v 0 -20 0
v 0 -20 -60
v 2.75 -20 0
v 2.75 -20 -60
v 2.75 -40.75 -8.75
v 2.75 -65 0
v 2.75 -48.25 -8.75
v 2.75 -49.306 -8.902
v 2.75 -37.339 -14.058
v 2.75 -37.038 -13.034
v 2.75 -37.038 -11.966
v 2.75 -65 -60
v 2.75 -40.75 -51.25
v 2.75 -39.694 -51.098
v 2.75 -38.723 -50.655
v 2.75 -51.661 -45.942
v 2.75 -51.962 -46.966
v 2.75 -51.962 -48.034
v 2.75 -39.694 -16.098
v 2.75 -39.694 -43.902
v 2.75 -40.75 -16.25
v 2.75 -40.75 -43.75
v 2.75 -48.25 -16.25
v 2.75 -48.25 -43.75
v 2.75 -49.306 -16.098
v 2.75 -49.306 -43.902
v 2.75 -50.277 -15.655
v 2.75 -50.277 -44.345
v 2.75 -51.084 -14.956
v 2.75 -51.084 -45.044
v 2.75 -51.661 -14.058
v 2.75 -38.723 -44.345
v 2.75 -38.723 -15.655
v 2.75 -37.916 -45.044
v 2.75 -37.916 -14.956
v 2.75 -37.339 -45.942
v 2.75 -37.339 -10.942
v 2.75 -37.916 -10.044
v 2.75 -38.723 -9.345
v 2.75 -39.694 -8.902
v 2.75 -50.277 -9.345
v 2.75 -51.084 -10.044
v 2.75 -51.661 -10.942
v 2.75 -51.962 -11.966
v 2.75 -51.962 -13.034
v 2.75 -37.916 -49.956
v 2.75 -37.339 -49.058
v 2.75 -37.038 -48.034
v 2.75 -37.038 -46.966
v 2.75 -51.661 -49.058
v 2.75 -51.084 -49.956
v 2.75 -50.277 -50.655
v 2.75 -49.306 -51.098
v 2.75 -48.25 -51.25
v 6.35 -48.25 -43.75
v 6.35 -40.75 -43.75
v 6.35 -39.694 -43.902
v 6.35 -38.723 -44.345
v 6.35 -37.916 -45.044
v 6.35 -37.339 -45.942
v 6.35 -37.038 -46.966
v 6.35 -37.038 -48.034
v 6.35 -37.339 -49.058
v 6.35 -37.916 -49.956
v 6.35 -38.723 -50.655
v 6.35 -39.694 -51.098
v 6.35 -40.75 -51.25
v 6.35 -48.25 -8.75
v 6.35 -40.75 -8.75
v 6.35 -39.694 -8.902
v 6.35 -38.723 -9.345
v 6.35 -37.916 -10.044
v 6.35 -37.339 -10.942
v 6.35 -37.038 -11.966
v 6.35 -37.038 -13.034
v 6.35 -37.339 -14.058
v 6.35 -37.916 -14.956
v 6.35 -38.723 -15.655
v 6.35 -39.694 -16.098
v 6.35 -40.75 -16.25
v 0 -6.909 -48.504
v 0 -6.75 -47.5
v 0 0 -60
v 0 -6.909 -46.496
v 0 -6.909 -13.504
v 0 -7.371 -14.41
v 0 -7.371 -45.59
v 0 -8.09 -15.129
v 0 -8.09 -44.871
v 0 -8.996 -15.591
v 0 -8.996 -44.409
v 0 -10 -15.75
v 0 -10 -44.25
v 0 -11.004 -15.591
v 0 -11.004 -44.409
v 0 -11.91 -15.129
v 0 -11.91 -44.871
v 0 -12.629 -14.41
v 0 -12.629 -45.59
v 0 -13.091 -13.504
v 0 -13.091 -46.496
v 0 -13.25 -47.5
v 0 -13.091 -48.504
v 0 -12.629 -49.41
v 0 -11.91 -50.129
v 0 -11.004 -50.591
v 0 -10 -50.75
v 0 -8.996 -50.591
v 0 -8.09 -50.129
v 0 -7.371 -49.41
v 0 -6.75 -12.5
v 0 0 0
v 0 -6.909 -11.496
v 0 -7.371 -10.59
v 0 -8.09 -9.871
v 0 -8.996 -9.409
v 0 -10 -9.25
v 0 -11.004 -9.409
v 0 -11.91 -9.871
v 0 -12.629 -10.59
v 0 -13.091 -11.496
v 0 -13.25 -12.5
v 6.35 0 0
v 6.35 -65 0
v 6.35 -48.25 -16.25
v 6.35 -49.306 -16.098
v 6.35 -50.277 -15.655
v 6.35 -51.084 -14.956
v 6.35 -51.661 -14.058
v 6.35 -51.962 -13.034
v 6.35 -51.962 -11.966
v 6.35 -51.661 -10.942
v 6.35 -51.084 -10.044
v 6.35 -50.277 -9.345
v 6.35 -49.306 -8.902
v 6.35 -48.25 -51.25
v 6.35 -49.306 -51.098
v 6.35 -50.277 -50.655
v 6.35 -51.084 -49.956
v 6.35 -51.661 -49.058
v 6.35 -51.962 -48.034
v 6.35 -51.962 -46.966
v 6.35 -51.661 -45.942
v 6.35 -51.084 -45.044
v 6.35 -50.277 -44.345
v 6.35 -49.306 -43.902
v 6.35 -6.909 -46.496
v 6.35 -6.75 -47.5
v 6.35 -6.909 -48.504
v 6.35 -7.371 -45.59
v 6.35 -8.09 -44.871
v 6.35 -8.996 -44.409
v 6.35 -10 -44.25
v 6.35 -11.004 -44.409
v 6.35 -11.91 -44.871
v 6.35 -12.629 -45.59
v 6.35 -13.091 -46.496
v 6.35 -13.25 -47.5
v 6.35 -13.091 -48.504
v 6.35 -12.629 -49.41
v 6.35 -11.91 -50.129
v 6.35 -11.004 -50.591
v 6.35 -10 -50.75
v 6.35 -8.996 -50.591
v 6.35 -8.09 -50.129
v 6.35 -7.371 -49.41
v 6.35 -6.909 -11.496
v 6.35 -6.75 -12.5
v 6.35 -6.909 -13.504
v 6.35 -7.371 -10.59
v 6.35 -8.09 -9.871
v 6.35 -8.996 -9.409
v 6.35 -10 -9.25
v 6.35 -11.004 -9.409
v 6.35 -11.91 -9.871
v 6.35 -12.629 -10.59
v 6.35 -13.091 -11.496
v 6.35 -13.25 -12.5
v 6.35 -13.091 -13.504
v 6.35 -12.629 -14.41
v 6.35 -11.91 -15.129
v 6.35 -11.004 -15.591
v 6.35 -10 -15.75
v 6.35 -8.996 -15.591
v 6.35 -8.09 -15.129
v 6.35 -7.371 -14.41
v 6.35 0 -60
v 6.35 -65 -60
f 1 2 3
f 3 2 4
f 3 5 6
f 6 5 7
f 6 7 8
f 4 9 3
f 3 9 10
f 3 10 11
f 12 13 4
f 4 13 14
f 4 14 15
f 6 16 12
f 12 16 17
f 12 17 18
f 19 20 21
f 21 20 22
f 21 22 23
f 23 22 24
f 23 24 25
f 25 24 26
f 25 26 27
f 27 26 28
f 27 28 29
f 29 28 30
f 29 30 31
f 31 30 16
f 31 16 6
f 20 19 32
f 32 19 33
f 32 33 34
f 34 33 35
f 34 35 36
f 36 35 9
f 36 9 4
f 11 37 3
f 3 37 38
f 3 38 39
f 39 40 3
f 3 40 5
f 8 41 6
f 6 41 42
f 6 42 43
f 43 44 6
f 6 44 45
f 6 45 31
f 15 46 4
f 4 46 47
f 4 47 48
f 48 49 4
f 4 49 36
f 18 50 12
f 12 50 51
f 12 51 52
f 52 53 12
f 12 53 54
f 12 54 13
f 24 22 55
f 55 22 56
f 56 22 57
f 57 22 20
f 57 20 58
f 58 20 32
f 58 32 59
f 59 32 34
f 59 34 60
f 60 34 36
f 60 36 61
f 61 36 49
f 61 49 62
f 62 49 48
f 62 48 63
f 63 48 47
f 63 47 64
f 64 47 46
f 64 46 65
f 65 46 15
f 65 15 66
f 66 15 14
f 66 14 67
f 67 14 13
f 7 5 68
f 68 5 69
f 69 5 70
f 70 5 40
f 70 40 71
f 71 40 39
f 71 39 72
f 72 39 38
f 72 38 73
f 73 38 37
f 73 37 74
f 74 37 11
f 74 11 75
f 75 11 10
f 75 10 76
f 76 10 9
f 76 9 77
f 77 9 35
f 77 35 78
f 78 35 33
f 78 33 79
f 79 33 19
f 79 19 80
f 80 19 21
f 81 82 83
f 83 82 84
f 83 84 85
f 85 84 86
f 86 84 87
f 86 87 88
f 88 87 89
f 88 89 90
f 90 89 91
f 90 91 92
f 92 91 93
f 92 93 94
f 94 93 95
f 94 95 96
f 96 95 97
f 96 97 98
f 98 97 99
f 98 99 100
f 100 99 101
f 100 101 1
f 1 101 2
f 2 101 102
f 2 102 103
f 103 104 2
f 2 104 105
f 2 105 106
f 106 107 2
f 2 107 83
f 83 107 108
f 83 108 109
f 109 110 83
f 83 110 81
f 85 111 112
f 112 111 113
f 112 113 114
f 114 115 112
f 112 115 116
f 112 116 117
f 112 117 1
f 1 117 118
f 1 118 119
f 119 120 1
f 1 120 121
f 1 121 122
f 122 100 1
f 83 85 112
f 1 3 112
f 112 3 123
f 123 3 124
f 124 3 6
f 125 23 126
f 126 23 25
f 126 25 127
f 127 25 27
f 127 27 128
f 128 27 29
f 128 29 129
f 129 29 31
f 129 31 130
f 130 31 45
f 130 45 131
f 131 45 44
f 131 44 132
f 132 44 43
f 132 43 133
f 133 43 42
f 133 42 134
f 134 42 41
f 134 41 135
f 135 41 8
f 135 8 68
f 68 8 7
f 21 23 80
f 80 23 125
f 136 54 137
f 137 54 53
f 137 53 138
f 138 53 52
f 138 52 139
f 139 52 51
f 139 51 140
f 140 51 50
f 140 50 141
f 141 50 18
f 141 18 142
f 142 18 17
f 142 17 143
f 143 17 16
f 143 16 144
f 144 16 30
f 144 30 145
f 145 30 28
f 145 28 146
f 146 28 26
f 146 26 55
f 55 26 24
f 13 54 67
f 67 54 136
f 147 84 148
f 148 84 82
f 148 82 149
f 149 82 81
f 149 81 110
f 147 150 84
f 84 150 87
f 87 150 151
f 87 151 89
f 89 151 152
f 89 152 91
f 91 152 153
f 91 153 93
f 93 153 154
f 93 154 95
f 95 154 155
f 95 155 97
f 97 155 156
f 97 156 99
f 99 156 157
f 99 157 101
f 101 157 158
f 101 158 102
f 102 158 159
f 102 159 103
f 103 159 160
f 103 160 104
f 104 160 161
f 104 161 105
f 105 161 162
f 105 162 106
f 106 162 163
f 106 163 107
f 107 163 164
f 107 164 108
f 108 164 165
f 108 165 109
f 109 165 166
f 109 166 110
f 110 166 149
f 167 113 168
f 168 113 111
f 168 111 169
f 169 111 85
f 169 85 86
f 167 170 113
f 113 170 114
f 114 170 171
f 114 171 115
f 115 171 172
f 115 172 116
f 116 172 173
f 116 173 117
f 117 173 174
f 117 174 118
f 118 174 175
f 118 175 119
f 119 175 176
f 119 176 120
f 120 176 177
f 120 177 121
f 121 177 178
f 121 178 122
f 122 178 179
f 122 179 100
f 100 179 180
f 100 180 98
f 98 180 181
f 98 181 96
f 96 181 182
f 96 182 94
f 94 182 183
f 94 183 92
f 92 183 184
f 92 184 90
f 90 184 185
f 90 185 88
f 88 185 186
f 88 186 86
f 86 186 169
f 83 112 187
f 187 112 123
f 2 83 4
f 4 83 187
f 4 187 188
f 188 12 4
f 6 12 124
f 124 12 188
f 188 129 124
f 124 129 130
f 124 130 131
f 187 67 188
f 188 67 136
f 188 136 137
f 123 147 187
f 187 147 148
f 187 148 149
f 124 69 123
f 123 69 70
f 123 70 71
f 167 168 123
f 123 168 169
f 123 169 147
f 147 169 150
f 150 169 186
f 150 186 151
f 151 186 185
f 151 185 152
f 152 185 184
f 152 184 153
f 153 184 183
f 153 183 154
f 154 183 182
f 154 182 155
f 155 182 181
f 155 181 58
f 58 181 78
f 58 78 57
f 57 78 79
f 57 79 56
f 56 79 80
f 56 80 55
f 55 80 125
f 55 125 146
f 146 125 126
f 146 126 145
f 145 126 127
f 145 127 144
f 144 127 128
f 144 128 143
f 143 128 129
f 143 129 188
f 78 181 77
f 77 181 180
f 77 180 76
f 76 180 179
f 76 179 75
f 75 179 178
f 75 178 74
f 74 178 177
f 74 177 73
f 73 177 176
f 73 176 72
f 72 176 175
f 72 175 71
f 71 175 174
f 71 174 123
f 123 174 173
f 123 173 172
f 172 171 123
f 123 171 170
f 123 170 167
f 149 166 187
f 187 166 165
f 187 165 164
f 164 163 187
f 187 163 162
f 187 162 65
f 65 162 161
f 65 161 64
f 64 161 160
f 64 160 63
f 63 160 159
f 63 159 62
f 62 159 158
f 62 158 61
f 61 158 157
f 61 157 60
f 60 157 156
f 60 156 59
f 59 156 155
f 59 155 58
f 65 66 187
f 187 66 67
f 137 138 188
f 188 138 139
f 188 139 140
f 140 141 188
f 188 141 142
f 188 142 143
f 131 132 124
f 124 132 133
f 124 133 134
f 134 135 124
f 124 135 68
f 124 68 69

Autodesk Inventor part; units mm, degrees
ref_plane "YZ Plane" through (0, 0, 0) normal (1, 0, 0) x (0, 1, 0)
ref_plane "XZ Plane" through (0, 0, 0) normal (0, 1, 0) x (-1, 0, 0)
ref_plane "XY Plane" through (0, 0, 0) normal (0, 0, 1) x (1, 0, 0)
sketch "Sketch1" plane through (0, 0, 0) normal (1, 0, 0) x (0, 1, 0)
  line L0 (0, 0) -> (-65, 0)
  line L1 (-65, 0) -> (-65, -60)
  line L2 (-65, -60) -> (0, -60)
  line L3 (0, -60) -> (0, 0)
  line L4 (-40.75, -8.75) -> (-48.25, -8.75)
  line L5 (-48.25, -8.75) -> (-48.25, -16.25)
  line L6 (-48.25, -16.25) -> (-40.75, -16.25)
  line L7 (-40.75, -16.25) -> (-40.75, -8.75)
  arc A0 (-40.75, -16.25) -> (-40.75, -8.75) centre (-40.75, -12.5) ccw
  arc A1 (-48.25, -8.75) -> (-48.25, -16.25) centre (-48.25, -12.5) ccw
  line L8 (-40.75, -43.75) -> (-48.25, -43.75)
  line L9 (-48.25, -43.75) -> (-48.25, -51.25)
  line L10 (-48.25, -51.25) -> (-40.75, -51.25)
  line L11 (-40.75, -51.25) -> (-40.75, -43.75)
  arc A2 (-40.75, -51.25) -> (-40.75, -43.75) centre (-40.75, -47.5) ccw
  arc A3 (-48.25, -43.75) -> (-48.25, -51.25) centre (-48.25, -47.5) ccw
  circle A4 centre (-10, -12.5) radius 3.25
  circle A5 centre (-10, -47.5) radius 3.25
  line L12 (-20, 0) -> (-65, 0)
  line L13 (-65, 0) -> (-65, -60)
  line L14 (-65, -60) -> (-20, -60)
  line L15 (-20, -60) -> (-20, 0)
  point P0 (-20, -60)
  dimension "d1" = 60
  dimension "d4" = 7.5
  dimension "d5" = 7.5
  dimension "d8" = 8.75
  dimension "d10" = 35
  dimension "d15" = 10
  dimension "d16" = 6.5
  dimension "d17" = 6.5
  dimension "d18" = 30.75
  dimension "d19" = 65
  dimension "d20" = 7.5
  dimension "d21" = 20
extrude "Extrusion1" add sketch "Sketch1" along normal blind 6.35
extrude "Extrusion2" cut sketch "Sketch1" along normal blind 2.75 contours L15 L2 L1 L0
equation "\"d5\" = d4"
equation "\"d8\" = -0.5 * d4 + 0.5 * d1 - 0.5 * d10"
equation "\"d17\" = d16"
properties part number "mounting bracket 2"
